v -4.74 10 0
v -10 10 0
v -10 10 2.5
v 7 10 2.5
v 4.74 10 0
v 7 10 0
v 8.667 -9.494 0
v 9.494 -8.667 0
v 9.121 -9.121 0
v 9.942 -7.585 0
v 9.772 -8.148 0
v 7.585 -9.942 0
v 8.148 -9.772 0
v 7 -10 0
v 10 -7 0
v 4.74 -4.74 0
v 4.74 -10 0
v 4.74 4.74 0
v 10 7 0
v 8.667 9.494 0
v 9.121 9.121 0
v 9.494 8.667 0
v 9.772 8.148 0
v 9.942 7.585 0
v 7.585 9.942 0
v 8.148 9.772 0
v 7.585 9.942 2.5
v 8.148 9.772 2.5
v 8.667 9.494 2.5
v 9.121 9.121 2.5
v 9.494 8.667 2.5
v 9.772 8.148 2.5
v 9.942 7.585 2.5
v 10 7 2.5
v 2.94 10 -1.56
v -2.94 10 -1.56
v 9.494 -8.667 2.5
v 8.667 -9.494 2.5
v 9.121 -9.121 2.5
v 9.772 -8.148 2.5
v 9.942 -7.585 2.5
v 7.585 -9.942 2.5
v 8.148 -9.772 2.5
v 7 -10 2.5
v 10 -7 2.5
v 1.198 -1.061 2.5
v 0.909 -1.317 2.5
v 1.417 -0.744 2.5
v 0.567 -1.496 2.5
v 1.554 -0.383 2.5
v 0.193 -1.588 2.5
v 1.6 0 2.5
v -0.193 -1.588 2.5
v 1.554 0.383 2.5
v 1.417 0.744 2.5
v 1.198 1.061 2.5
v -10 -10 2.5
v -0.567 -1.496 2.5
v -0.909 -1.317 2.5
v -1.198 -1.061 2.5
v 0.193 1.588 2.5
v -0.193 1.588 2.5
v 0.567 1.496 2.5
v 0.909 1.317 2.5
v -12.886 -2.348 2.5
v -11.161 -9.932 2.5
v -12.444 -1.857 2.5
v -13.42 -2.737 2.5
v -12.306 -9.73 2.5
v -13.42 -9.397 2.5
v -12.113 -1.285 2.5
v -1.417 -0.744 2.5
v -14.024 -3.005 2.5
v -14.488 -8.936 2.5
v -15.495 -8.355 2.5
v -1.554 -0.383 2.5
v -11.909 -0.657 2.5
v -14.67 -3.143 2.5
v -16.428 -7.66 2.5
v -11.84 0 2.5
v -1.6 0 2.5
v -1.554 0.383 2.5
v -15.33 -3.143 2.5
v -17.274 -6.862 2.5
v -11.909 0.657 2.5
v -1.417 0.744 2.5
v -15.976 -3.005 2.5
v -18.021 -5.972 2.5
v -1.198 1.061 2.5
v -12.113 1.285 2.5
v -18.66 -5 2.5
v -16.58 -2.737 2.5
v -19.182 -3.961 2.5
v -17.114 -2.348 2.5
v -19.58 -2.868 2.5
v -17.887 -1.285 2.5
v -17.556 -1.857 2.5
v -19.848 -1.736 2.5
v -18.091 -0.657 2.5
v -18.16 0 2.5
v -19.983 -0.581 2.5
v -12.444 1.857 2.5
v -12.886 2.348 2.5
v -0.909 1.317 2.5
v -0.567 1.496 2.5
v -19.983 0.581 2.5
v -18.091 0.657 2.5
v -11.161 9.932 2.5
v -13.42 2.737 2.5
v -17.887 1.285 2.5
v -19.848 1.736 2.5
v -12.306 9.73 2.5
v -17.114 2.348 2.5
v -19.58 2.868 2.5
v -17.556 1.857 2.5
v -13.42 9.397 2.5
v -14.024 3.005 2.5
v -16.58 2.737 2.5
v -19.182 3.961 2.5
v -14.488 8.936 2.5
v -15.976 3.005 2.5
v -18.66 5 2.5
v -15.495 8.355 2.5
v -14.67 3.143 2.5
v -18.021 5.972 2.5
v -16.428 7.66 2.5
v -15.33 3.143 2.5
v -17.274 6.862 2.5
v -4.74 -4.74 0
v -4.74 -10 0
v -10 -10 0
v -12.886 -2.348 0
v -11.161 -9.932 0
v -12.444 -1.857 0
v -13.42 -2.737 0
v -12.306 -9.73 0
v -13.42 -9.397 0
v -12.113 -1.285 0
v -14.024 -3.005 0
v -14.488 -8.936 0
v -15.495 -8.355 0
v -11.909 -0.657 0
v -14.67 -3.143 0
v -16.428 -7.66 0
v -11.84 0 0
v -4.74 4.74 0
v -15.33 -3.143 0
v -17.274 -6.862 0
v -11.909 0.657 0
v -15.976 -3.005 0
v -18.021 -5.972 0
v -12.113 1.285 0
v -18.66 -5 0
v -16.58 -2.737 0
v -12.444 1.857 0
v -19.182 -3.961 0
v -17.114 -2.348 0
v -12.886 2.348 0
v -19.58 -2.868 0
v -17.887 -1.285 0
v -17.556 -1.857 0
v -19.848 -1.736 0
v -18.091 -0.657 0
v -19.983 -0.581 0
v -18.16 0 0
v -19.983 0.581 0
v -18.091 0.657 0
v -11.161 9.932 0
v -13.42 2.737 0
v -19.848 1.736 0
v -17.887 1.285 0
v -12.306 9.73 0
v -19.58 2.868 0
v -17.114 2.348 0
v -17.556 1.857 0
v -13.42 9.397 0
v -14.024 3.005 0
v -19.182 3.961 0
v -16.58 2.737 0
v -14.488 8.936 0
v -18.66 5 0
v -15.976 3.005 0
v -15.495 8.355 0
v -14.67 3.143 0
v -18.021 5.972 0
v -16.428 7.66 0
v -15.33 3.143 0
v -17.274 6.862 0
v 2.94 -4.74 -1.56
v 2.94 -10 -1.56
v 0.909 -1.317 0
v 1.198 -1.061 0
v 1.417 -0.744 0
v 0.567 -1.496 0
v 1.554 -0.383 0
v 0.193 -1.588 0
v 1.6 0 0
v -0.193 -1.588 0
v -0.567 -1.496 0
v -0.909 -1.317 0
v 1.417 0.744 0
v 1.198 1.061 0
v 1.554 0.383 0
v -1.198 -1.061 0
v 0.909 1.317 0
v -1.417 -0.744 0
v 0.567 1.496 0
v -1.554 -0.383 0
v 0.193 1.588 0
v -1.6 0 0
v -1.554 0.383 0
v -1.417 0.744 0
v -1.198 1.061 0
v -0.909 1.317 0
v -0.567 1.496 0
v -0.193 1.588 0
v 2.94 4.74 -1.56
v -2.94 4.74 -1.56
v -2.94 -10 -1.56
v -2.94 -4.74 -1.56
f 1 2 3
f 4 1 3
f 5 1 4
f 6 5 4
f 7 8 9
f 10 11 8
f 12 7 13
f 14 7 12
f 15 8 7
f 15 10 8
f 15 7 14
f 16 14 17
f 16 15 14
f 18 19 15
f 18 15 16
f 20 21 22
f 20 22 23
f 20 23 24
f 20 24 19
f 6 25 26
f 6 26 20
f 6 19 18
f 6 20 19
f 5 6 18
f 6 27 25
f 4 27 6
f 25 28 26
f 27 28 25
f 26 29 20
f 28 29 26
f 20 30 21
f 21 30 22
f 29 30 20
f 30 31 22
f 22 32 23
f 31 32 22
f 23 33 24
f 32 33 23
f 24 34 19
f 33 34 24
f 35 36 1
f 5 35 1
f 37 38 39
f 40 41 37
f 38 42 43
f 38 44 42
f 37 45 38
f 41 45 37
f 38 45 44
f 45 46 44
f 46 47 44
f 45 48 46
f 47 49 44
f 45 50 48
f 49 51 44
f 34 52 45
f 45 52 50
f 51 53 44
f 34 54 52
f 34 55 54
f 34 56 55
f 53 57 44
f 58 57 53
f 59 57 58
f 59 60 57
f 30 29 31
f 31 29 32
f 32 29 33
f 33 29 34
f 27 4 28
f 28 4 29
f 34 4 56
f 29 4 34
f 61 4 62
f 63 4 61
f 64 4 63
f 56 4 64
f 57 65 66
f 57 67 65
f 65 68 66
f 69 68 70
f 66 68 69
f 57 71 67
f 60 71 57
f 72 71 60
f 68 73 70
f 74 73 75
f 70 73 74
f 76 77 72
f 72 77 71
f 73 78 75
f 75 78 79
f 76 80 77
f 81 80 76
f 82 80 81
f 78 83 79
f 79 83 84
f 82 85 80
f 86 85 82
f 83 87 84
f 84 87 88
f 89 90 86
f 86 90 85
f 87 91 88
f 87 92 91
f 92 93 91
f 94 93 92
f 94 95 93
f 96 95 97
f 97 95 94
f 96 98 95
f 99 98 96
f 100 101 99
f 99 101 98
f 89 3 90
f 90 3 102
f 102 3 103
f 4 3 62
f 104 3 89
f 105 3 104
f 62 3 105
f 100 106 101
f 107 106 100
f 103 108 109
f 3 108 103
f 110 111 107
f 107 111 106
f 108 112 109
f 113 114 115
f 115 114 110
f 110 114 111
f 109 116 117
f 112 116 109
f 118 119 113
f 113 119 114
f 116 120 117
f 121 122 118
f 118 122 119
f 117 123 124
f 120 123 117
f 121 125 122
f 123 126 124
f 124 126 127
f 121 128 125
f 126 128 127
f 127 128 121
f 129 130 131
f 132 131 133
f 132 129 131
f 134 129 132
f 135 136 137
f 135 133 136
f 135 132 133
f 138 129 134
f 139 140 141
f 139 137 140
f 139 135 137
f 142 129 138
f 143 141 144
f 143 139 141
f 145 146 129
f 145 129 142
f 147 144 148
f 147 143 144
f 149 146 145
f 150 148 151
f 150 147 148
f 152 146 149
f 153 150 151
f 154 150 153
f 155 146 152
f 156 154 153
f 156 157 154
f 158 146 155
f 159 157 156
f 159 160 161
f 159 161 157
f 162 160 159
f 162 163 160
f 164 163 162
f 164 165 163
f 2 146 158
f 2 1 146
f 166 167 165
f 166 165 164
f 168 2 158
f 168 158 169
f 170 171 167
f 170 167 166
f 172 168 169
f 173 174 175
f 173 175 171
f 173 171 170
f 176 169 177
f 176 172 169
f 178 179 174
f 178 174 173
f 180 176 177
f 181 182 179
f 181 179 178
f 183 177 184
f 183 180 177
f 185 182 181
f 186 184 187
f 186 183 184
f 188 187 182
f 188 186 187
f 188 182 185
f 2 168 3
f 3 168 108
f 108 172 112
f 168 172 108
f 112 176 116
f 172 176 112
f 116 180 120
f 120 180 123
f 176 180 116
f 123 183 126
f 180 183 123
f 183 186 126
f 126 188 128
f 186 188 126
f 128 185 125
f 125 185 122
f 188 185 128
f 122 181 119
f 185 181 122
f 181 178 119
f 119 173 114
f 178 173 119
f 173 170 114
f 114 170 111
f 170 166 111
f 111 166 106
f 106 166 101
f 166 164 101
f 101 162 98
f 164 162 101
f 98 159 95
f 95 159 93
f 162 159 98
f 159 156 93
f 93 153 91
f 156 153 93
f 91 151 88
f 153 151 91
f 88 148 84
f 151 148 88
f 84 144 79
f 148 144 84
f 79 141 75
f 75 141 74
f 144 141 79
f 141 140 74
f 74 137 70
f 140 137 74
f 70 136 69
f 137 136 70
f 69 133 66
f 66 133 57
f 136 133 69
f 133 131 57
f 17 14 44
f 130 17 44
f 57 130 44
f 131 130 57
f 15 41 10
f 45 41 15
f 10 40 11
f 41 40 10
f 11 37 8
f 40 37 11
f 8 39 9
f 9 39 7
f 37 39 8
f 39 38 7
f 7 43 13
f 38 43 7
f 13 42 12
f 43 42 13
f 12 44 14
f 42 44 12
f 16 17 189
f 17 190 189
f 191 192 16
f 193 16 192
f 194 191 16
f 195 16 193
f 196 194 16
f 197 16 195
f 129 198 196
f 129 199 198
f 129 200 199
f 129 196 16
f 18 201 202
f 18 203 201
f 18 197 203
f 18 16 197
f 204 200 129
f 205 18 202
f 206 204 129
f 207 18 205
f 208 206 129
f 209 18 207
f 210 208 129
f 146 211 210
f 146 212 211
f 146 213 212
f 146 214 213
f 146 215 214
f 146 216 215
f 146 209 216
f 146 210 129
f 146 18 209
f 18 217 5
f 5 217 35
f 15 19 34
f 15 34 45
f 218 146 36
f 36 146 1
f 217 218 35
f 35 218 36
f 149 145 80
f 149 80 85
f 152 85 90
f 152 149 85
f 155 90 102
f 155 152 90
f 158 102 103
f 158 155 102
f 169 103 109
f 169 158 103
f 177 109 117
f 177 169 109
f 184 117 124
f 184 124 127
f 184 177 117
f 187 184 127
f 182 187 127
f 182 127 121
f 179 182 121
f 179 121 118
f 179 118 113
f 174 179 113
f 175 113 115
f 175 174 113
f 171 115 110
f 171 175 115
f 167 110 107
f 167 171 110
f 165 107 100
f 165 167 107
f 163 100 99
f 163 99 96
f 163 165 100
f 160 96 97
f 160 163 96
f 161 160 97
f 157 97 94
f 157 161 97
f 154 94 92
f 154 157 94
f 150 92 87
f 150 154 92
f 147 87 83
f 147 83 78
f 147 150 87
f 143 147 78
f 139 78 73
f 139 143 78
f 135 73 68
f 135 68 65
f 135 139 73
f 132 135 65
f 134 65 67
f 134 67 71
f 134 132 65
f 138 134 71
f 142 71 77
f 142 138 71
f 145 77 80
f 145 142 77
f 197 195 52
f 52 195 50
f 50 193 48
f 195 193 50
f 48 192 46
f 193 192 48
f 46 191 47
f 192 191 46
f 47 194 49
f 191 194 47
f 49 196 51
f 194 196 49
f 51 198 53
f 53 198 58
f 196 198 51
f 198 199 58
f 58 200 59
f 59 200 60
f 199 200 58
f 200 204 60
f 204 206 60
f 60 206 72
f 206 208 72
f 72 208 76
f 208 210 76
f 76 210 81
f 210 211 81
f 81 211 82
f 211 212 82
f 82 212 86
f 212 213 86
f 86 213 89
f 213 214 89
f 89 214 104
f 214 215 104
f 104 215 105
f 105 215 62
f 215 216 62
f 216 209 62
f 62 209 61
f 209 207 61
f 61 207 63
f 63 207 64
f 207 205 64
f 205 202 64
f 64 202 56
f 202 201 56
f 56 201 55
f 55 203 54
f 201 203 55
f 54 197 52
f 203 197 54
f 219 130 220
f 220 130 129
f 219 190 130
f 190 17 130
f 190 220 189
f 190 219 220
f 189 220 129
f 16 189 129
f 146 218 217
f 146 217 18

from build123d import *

# Parameters (mm, degrees)
SKETCH_R        = 3.16
PAD_DEPTH       = 2.5
PAD001_DEPTH    = 20
SKETCH002_R     = 1.6
POCKET_DEPTH    = 4.061
FILLET_R        = 3
SKETCH003_W     = 9.48
SKETCH003_H     = 9.48
POCKET001_DEPTH = 1.56


with BuildPart() as part:
    # Sketch → Pad (new body)
    with BuildSketch(Plane.XY):
        with BuildLine():
            Line((-10, 10), (10, 10))
            Line((10, 10), (10, -10))
            Line((10, -10), (-10, -10))
            ThreePointArc((-10, 10), (-20, 0), (-10, -10))
        make_face()
        with Locations((-15, 0)):
            Circle(SKETCH_R, mode=Mode.SUBTRACT)
    extrude(amount=PAD_DEPTH)

    # Sketch001 (on Face3 of Pad) → Pad001 (join)
    with BuildSketch(Plane.XZ.offset(10)):
        Polygon((-4.74, 0), (4.74, 0), (2.94, -1.56), (-2.94, -1.56), align=None)
    extrude(amount=-PAD001_DEPTH)

    # Sketch002 (on Face11 of Pad001) → Pocket (cut, through all)
    with BuildSketch(Plane(origin=(0, 0, -1.56), x_dir=(1, 0, 0), z_dir=(0, 0, -1))):
        Circle(SKETCH002_R)
    extrude(amount=-POCKET_DEPTH, mode=Mode.SUBTRACT)

    # Fillet
    fillet_edges = [part.edges().sort_by_distance(p)[0] for p in [
        (10, -10, 1.25),
        (10, 10, 1.25),
    ]]
    fillet(fillet_edges, radius=FILLET_R)

    # Sketch003 (on Face13 of Fillet) → Pocket001 (cut)
    with BuildSketch(Plane(origin=(0, 0, -1.56), x_dir=(1, 0, 0), z_dir=(0, 0, -1))):
        Rectangle(SKETCH003_W, SKETCH003_H)
    extrude(amount=-POCKET001_DEPTH, mode=Mode.SUBTRACT)


solid = part.part
